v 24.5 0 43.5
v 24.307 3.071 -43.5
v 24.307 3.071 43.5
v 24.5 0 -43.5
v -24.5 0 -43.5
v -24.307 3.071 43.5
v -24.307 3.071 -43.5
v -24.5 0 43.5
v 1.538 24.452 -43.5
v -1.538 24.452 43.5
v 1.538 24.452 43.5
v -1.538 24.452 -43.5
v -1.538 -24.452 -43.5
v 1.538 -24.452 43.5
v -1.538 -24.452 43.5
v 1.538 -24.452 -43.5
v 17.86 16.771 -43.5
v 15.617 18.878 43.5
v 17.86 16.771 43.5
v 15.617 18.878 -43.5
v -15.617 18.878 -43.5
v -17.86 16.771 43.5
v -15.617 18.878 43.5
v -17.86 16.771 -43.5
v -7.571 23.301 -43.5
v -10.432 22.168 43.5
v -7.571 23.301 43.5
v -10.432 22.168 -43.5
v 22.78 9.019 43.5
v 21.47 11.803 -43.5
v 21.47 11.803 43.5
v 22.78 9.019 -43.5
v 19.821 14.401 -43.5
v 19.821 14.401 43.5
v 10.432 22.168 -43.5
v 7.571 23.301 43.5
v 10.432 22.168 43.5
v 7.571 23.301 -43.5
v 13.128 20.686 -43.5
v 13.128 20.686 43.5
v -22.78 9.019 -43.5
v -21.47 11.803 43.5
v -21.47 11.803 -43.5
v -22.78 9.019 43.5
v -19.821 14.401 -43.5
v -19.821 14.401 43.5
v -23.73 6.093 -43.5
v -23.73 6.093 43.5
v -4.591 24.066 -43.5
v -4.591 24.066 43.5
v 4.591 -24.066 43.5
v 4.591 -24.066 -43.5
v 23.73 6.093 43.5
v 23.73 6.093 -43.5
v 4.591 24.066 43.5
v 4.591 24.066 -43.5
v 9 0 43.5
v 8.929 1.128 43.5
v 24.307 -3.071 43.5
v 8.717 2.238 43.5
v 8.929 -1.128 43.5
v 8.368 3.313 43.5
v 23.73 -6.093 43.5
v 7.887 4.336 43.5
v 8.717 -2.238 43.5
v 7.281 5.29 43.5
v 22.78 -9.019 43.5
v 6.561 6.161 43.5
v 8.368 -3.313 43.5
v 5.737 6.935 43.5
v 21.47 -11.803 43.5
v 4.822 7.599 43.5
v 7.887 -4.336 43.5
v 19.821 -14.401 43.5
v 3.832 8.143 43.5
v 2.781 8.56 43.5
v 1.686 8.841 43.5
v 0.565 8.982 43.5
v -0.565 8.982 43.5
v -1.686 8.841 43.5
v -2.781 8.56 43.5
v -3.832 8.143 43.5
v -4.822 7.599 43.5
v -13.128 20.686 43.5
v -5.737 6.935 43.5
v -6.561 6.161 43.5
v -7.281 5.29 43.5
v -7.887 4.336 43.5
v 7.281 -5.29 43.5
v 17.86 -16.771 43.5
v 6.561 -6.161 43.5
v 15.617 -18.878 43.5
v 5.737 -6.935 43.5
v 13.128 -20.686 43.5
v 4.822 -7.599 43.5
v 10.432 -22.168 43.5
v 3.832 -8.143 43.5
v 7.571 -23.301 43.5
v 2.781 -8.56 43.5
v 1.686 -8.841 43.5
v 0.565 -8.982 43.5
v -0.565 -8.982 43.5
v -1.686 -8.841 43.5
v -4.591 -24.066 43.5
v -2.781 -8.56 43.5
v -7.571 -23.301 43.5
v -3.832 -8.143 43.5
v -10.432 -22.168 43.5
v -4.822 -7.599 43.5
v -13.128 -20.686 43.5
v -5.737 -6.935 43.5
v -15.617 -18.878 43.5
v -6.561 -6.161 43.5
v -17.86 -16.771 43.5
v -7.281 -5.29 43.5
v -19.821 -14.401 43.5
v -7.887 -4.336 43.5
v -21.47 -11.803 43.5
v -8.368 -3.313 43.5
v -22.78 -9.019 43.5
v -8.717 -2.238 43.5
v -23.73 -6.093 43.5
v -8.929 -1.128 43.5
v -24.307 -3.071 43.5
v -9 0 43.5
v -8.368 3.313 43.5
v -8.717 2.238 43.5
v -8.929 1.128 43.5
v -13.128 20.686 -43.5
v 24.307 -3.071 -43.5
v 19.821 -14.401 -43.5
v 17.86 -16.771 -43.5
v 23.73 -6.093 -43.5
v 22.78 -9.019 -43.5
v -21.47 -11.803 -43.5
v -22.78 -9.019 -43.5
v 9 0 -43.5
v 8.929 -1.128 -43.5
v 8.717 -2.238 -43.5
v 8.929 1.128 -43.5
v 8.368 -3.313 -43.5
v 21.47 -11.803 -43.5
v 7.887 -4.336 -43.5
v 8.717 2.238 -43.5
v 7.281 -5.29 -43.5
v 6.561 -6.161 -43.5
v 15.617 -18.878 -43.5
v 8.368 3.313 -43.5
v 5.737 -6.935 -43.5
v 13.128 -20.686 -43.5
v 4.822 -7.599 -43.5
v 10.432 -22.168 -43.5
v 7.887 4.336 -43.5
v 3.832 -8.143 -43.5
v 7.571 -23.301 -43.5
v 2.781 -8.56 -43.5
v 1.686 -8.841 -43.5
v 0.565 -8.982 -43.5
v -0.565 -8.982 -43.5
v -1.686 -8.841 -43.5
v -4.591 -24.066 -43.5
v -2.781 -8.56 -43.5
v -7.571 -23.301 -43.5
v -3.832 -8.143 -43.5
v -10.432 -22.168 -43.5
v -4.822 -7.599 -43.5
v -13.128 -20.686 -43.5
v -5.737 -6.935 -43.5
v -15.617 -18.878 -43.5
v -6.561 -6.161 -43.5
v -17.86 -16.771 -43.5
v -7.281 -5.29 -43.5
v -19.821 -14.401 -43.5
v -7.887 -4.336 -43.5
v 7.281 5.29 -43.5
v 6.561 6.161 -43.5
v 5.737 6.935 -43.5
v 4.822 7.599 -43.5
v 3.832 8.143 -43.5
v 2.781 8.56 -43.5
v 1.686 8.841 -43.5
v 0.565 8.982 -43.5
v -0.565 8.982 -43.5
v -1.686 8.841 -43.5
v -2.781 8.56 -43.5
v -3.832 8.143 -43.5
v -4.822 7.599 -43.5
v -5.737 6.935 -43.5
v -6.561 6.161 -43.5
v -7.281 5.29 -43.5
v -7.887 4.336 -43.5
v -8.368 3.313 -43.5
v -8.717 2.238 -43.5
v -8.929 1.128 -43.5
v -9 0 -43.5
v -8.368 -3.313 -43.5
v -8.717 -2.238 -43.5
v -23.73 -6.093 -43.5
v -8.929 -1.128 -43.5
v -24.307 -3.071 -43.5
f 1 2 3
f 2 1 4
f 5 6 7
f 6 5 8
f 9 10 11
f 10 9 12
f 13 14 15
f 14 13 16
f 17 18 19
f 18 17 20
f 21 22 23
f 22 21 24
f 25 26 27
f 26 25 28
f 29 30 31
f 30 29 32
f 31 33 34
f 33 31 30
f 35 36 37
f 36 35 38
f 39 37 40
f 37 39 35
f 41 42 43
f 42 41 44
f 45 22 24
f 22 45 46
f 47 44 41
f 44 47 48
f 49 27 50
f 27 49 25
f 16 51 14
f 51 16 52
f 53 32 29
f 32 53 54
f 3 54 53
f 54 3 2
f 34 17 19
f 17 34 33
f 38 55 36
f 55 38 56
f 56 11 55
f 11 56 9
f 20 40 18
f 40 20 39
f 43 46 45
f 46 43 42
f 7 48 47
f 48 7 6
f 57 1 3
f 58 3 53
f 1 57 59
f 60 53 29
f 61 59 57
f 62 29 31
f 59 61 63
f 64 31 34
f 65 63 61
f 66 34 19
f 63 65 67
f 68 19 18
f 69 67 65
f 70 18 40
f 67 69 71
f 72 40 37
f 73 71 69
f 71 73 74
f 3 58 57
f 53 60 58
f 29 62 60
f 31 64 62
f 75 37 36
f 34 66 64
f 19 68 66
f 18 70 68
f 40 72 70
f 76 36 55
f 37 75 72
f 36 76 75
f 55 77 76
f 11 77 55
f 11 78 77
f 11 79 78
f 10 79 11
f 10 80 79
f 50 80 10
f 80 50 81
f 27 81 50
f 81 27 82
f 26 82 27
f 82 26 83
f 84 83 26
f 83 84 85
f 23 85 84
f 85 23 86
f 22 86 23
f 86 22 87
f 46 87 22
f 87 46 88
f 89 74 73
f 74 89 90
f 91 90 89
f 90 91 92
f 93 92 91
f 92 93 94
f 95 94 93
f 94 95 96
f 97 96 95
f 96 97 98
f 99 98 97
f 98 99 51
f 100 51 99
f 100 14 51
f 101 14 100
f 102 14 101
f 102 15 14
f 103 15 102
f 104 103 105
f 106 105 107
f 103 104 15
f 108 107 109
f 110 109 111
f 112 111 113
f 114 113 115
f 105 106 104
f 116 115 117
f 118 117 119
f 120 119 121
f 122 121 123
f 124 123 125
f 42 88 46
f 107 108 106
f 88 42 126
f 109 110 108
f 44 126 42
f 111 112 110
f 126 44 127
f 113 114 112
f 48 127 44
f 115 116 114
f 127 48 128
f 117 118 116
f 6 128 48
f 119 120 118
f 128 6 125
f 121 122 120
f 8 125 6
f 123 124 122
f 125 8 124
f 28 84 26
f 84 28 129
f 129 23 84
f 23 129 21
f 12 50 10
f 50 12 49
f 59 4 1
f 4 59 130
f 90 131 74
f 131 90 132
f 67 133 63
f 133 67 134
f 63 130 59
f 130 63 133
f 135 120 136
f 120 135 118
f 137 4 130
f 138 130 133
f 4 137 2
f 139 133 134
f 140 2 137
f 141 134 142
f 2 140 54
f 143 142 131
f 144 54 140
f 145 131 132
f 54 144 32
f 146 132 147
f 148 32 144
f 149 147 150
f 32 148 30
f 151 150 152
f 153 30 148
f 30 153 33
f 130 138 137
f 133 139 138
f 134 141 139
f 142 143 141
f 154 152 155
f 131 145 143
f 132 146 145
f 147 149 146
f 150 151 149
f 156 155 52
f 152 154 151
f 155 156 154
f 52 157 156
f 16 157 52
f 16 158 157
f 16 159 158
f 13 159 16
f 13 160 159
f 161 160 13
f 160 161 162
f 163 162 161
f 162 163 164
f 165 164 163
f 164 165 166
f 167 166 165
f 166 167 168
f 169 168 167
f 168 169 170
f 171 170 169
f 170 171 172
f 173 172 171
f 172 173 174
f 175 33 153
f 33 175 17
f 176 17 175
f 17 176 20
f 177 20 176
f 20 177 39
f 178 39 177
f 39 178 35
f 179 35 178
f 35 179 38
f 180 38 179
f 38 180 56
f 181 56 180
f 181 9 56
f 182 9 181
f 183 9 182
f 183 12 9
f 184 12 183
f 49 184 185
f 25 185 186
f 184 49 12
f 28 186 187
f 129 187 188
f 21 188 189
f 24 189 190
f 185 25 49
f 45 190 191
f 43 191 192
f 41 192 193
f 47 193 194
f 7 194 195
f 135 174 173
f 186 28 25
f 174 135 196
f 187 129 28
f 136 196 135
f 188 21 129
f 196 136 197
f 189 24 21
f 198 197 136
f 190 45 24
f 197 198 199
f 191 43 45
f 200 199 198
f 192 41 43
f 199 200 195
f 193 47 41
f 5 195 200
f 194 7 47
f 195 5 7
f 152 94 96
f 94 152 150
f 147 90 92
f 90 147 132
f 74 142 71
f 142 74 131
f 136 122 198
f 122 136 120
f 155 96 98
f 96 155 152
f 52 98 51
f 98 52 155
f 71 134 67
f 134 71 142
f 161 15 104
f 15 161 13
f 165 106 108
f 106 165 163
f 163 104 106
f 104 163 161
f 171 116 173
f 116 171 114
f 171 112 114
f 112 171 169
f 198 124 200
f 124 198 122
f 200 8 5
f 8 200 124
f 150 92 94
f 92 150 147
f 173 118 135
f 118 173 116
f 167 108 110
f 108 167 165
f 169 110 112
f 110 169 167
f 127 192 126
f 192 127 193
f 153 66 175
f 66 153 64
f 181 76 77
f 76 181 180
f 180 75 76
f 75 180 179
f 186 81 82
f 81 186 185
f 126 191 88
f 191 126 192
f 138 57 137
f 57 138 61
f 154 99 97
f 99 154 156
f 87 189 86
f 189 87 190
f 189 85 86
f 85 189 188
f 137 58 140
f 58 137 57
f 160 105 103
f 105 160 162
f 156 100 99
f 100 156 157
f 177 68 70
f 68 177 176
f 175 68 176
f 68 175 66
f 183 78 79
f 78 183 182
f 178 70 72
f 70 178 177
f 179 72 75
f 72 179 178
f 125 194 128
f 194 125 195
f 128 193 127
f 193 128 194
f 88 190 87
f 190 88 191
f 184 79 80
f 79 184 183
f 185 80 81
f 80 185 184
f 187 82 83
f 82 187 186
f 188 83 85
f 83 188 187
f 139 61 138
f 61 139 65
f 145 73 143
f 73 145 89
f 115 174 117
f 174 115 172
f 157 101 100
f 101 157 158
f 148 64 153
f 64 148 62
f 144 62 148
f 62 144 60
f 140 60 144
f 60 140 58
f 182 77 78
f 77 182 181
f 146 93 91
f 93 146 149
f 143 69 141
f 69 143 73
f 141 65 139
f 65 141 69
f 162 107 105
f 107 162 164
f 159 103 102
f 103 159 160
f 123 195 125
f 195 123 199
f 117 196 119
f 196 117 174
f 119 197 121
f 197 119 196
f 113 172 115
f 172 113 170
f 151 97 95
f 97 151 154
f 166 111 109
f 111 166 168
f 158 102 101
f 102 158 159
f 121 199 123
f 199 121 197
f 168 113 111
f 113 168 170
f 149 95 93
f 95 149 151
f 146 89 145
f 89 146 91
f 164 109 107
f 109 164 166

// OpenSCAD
$fn = 50;


difference() {
	union() {
		translate(v = [0, 0, -43.5000000000]) {
			cylinder(h = 87, r = 24.5000000000);
		}
	}
	union() {
		translate(v = [0, 0, -100.0000000000]) {
			cylinder(h = 200, r = 9);
		}
	}
}
